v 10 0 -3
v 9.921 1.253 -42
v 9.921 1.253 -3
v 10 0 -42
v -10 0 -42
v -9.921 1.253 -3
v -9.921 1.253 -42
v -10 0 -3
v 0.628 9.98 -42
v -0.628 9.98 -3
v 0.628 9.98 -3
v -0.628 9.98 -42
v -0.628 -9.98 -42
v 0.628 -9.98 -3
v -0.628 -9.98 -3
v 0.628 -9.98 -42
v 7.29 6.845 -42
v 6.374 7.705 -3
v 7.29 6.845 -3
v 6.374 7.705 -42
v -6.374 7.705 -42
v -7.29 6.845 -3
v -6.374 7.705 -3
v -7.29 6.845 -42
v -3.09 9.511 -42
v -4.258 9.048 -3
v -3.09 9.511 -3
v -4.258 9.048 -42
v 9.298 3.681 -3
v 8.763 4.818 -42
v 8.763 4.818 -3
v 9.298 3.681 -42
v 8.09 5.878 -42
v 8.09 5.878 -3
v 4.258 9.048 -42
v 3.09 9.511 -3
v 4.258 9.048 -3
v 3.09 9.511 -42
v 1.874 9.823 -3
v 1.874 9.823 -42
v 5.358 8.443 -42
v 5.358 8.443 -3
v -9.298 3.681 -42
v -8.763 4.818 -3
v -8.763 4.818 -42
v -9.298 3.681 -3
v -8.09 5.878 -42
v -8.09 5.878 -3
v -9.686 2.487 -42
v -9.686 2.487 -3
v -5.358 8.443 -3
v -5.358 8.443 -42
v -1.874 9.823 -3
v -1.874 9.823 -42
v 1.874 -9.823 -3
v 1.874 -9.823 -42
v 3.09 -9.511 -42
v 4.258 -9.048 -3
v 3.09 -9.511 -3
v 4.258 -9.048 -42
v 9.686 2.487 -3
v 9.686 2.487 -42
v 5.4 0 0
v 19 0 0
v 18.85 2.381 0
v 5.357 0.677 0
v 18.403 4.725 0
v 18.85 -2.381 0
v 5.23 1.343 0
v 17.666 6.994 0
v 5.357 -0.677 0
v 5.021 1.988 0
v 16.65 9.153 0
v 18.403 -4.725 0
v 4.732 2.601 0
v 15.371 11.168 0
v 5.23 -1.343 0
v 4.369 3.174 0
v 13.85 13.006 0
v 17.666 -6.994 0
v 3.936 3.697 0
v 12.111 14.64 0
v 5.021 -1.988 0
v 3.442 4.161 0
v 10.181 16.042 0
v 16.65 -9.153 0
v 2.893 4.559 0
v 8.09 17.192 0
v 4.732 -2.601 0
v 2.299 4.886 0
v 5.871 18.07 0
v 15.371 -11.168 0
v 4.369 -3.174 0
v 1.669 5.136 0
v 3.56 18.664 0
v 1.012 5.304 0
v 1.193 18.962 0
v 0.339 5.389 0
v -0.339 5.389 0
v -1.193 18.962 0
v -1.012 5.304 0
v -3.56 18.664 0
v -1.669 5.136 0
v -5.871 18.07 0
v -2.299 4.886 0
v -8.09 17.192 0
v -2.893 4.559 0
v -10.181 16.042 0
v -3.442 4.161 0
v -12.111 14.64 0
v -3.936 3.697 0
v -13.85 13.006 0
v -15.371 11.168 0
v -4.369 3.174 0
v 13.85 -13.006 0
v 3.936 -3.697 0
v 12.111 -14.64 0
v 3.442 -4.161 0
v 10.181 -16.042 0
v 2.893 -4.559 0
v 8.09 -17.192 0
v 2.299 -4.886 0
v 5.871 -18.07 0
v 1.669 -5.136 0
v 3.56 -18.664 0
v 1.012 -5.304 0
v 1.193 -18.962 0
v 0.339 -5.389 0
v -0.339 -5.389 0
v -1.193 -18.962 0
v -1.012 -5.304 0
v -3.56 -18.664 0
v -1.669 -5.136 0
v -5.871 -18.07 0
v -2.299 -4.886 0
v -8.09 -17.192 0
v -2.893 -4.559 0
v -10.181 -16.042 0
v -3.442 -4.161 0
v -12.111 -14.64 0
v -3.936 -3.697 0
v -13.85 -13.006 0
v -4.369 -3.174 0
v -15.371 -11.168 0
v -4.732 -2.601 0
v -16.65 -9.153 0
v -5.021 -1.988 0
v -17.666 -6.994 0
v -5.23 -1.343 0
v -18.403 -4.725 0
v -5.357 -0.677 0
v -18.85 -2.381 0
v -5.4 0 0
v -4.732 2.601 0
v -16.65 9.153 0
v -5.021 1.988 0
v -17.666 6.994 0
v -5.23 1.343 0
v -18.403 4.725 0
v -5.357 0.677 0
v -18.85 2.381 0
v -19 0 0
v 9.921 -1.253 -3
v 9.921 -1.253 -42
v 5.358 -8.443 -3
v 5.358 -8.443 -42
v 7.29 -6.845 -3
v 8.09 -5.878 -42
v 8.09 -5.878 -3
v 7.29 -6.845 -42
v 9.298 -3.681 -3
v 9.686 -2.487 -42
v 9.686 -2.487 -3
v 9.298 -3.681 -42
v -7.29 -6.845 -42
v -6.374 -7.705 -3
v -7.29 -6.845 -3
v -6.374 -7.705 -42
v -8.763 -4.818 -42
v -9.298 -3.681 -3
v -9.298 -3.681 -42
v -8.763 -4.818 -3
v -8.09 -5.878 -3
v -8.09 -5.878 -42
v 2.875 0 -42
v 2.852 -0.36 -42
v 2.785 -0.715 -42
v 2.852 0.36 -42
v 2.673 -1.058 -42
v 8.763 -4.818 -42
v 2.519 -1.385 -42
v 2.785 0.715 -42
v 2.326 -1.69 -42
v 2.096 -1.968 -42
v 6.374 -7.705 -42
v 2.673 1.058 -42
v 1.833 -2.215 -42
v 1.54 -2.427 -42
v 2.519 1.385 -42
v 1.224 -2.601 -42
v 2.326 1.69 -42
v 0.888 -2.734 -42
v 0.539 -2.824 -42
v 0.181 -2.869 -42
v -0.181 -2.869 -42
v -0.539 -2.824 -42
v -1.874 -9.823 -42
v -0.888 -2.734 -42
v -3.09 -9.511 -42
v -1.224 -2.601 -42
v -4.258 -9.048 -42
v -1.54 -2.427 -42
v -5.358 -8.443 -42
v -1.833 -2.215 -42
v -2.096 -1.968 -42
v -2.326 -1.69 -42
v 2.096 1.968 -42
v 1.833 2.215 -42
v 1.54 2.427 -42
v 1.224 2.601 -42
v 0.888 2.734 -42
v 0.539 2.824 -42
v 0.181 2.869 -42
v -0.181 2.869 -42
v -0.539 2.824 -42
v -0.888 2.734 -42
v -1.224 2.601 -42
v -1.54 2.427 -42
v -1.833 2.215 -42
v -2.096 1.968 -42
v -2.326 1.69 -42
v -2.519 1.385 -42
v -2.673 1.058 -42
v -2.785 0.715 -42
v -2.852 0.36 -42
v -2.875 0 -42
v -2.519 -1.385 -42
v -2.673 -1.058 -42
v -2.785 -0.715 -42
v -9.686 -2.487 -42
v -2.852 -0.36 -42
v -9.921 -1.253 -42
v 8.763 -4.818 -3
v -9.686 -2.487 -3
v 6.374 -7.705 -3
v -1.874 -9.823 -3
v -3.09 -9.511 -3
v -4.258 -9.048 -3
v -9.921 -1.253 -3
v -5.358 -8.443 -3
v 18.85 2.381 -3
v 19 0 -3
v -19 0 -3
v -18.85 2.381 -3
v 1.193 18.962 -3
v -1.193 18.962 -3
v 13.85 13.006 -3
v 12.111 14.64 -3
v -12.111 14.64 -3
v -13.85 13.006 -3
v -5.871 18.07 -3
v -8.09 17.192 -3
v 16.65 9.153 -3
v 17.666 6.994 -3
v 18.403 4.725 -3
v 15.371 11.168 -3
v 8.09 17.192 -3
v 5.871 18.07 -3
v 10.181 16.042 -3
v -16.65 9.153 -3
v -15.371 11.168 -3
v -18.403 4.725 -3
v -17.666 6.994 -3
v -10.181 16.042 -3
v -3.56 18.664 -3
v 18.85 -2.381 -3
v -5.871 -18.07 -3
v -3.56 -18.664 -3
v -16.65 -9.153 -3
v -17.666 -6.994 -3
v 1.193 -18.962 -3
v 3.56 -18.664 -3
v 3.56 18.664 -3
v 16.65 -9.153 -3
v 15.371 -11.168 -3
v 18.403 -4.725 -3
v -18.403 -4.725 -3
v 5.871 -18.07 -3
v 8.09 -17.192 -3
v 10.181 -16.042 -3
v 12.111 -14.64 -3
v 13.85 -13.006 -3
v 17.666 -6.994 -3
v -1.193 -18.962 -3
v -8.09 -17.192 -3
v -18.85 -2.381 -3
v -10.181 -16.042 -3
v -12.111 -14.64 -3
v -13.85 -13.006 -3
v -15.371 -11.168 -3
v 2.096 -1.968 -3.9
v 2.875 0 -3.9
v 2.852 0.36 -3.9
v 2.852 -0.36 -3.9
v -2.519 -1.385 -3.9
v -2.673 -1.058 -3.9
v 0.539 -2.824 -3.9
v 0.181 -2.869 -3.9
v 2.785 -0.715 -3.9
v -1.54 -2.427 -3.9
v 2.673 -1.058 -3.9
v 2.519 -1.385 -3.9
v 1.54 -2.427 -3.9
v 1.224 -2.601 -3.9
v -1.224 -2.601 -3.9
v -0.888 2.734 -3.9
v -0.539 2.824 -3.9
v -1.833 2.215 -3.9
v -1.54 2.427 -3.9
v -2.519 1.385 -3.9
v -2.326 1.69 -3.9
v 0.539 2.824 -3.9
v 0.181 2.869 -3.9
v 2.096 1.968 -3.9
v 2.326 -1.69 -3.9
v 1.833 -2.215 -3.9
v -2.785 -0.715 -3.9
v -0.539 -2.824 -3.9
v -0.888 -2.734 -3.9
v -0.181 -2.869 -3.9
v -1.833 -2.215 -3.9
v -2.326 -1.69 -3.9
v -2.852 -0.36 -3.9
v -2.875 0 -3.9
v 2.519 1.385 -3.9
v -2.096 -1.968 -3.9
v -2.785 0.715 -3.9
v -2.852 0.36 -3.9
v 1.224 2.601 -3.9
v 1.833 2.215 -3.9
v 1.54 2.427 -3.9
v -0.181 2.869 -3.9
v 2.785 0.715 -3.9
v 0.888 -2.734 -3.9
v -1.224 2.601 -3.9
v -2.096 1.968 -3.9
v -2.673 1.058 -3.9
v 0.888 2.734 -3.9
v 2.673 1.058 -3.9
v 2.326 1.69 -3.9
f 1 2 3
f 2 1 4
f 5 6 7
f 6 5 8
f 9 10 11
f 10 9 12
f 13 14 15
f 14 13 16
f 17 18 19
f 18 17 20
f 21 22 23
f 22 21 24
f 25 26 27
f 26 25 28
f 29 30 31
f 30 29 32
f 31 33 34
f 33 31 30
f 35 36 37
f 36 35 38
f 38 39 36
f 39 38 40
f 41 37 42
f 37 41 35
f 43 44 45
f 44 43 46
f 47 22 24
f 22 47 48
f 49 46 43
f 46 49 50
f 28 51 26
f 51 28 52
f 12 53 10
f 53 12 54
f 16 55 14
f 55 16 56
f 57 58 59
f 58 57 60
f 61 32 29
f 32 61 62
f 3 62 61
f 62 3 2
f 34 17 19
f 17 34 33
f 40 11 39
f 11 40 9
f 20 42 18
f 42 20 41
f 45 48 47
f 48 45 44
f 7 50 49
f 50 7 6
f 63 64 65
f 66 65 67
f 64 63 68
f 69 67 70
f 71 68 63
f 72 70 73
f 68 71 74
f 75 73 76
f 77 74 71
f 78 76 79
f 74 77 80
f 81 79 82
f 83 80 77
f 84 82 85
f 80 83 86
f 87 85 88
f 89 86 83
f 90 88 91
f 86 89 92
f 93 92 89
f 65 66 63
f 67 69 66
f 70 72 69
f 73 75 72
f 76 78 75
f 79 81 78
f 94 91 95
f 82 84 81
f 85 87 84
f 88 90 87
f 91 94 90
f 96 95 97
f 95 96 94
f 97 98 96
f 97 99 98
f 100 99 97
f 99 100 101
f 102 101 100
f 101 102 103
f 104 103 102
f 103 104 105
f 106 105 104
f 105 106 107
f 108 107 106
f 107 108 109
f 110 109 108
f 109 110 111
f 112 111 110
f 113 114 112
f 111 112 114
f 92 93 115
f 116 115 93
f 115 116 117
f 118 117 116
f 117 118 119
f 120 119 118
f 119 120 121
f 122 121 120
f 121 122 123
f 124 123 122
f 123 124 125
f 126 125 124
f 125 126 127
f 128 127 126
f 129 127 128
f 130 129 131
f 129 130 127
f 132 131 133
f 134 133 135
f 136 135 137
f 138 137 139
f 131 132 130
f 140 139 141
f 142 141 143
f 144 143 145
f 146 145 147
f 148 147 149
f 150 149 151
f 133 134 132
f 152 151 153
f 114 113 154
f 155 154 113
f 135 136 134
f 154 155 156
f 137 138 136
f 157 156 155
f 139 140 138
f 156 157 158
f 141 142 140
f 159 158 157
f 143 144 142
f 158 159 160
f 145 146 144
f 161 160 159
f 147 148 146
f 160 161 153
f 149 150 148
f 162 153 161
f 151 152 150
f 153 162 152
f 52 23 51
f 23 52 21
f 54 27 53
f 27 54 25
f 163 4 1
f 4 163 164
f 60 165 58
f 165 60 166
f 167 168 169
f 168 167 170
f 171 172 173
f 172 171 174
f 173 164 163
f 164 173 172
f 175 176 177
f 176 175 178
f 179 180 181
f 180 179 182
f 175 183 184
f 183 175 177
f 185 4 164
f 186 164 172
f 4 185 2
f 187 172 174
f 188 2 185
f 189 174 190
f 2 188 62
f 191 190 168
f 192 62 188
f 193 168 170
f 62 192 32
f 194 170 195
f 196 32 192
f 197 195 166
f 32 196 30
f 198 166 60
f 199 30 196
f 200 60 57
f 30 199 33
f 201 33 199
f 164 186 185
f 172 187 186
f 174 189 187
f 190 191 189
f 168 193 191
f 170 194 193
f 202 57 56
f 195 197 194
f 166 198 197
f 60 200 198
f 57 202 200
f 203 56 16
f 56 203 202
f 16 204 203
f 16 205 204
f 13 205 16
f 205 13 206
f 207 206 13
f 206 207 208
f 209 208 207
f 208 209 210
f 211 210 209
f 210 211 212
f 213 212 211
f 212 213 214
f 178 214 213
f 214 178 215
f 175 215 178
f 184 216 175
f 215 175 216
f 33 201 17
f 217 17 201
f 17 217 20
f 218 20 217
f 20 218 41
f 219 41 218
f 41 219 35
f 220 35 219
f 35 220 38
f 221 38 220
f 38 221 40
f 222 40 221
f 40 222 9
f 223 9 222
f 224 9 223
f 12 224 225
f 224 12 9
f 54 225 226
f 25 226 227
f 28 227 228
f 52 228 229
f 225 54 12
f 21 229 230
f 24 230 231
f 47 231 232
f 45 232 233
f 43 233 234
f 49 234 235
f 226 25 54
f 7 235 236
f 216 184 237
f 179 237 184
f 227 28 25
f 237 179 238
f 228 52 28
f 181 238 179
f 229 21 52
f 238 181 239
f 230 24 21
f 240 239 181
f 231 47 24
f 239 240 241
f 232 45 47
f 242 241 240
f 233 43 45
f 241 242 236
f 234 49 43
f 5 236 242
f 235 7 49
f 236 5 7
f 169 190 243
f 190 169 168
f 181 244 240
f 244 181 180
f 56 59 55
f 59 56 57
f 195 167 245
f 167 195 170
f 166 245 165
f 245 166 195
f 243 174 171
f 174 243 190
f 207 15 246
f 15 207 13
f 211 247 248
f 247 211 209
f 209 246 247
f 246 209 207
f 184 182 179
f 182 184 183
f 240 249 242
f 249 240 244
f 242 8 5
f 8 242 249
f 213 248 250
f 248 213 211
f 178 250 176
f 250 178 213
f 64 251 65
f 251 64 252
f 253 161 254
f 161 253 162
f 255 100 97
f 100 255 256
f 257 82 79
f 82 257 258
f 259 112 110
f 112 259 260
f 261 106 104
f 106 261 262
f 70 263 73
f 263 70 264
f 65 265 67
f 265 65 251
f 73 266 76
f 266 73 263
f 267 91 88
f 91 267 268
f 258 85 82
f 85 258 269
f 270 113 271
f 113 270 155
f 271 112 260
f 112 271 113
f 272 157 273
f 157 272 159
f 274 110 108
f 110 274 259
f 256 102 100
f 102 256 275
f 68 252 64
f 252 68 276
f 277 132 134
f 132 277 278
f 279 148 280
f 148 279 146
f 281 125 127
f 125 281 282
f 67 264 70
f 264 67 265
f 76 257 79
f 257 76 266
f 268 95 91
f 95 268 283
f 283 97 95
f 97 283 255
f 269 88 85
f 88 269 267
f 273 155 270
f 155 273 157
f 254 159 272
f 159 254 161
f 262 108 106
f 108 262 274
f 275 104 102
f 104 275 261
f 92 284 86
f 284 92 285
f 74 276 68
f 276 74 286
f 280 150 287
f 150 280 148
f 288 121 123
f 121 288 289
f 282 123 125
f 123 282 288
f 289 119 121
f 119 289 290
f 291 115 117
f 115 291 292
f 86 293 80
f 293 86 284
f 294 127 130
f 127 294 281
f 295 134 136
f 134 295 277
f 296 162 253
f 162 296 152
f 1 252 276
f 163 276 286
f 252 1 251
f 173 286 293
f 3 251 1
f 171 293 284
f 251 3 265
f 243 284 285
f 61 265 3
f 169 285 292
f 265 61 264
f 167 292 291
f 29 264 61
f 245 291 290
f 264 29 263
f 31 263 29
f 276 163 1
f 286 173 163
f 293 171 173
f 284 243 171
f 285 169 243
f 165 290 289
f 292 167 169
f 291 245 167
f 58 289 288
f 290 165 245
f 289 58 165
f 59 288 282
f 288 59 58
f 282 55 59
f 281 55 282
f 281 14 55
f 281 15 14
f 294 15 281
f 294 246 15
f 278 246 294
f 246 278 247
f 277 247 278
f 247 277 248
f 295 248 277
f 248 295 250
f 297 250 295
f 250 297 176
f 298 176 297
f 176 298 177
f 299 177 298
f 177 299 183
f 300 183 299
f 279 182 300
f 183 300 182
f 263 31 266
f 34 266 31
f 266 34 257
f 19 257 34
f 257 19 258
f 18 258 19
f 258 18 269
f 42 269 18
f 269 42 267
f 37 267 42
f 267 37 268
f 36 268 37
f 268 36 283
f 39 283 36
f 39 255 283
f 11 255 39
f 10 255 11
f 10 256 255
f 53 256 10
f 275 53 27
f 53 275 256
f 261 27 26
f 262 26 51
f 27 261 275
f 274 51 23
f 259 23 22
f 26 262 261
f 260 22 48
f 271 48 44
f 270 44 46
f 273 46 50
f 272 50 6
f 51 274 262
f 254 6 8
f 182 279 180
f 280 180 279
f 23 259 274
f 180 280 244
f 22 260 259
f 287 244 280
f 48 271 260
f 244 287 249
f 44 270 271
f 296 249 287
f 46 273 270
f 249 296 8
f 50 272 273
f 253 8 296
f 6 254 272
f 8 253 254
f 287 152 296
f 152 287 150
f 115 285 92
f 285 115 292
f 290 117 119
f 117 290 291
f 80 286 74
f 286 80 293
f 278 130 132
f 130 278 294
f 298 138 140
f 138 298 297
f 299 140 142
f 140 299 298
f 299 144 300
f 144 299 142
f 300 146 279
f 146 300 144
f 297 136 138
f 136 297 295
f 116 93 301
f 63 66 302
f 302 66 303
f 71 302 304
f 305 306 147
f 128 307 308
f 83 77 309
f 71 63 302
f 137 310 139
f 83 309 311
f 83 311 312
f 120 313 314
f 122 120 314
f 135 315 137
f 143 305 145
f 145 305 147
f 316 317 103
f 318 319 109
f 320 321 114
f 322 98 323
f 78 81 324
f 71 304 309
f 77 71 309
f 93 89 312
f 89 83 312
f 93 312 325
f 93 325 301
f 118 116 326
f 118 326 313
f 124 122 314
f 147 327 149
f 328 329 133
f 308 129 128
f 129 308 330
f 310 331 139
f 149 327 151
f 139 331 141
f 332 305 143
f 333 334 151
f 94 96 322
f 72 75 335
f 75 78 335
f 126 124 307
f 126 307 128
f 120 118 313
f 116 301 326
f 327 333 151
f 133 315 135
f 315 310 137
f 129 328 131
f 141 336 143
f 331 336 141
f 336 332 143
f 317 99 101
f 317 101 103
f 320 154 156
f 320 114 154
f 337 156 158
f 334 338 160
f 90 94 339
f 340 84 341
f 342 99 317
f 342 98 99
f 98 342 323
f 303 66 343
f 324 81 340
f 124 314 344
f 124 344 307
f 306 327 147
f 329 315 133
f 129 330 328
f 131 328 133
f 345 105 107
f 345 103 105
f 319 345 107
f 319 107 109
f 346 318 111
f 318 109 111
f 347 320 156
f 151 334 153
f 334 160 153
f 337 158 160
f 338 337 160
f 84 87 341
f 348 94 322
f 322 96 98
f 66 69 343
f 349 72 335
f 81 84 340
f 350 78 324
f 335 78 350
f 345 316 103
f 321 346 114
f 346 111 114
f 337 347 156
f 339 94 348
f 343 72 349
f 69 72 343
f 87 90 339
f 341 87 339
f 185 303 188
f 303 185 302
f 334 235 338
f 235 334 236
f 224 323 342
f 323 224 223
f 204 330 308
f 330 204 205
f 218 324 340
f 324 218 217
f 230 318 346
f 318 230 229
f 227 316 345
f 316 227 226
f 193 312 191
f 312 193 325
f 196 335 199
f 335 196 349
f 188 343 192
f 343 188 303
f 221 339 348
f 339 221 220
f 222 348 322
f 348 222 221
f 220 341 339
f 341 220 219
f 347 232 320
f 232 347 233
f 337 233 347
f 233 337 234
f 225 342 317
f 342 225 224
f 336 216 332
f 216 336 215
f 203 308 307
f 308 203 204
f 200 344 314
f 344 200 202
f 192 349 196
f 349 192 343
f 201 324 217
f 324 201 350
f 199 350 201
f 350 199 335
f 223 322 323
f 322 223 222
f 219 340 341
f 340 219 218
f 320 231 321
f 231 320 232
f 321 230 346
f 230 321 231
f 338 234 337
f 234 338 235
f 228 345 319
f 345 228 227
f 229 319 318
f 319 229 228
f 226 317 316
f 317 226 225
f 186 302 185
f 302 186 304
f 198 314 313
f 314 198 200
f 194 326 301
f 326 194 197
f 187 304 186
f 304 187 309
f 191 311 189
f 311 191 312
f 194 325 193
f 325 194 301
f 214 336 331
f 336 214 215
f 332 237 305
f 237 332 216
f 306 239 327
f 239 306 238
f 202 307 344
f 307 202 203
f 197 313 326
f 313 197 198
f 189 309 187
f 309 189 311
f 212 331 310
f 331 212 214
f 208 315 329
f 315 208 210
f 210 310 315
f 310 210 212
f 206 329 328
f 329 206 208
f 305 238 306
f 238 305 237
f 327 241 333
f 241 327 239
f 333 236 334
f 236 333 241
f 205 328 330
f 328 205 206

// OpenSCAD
$fn = 50;


difference() {
	union() {
		translate(v = [0, 0, -42.0000000000]) {
			cylinder(h = 42, r = 10.0000000000);
		}
		translate(v = [0, 0, -3.0000000000]) {
			cylinder(h = 3, r = 19.0000000000);
		}
	}
	union() {
		translate(v = [0, 0, 0]) {
			rotate(a = [0, 0, 0]) {
				difference() {
					union() {
						#translate(v = [0, 0, -42.0000000000]) {
							cylinder(h = 42, r = 2.6000000000);
						}
						#translate(v = [0, 0, -3.9000000000]) {
							cylinder(h = 3.9000000000, r = 10.0000000000, r1 = 2.8750000000, r2 = 5.4000000000);
						}
						#translate(v = [0, 0, -42.0000000000]) {
							cylinder(h = 42, r = 2.8750000000);
						}
						#translate(v = [0, 0, -42.0000000000]) {
							cylinder(h = 42, r = 2.6000000000);
						}
					}
					union();
				}
			}
		}
	}
}
